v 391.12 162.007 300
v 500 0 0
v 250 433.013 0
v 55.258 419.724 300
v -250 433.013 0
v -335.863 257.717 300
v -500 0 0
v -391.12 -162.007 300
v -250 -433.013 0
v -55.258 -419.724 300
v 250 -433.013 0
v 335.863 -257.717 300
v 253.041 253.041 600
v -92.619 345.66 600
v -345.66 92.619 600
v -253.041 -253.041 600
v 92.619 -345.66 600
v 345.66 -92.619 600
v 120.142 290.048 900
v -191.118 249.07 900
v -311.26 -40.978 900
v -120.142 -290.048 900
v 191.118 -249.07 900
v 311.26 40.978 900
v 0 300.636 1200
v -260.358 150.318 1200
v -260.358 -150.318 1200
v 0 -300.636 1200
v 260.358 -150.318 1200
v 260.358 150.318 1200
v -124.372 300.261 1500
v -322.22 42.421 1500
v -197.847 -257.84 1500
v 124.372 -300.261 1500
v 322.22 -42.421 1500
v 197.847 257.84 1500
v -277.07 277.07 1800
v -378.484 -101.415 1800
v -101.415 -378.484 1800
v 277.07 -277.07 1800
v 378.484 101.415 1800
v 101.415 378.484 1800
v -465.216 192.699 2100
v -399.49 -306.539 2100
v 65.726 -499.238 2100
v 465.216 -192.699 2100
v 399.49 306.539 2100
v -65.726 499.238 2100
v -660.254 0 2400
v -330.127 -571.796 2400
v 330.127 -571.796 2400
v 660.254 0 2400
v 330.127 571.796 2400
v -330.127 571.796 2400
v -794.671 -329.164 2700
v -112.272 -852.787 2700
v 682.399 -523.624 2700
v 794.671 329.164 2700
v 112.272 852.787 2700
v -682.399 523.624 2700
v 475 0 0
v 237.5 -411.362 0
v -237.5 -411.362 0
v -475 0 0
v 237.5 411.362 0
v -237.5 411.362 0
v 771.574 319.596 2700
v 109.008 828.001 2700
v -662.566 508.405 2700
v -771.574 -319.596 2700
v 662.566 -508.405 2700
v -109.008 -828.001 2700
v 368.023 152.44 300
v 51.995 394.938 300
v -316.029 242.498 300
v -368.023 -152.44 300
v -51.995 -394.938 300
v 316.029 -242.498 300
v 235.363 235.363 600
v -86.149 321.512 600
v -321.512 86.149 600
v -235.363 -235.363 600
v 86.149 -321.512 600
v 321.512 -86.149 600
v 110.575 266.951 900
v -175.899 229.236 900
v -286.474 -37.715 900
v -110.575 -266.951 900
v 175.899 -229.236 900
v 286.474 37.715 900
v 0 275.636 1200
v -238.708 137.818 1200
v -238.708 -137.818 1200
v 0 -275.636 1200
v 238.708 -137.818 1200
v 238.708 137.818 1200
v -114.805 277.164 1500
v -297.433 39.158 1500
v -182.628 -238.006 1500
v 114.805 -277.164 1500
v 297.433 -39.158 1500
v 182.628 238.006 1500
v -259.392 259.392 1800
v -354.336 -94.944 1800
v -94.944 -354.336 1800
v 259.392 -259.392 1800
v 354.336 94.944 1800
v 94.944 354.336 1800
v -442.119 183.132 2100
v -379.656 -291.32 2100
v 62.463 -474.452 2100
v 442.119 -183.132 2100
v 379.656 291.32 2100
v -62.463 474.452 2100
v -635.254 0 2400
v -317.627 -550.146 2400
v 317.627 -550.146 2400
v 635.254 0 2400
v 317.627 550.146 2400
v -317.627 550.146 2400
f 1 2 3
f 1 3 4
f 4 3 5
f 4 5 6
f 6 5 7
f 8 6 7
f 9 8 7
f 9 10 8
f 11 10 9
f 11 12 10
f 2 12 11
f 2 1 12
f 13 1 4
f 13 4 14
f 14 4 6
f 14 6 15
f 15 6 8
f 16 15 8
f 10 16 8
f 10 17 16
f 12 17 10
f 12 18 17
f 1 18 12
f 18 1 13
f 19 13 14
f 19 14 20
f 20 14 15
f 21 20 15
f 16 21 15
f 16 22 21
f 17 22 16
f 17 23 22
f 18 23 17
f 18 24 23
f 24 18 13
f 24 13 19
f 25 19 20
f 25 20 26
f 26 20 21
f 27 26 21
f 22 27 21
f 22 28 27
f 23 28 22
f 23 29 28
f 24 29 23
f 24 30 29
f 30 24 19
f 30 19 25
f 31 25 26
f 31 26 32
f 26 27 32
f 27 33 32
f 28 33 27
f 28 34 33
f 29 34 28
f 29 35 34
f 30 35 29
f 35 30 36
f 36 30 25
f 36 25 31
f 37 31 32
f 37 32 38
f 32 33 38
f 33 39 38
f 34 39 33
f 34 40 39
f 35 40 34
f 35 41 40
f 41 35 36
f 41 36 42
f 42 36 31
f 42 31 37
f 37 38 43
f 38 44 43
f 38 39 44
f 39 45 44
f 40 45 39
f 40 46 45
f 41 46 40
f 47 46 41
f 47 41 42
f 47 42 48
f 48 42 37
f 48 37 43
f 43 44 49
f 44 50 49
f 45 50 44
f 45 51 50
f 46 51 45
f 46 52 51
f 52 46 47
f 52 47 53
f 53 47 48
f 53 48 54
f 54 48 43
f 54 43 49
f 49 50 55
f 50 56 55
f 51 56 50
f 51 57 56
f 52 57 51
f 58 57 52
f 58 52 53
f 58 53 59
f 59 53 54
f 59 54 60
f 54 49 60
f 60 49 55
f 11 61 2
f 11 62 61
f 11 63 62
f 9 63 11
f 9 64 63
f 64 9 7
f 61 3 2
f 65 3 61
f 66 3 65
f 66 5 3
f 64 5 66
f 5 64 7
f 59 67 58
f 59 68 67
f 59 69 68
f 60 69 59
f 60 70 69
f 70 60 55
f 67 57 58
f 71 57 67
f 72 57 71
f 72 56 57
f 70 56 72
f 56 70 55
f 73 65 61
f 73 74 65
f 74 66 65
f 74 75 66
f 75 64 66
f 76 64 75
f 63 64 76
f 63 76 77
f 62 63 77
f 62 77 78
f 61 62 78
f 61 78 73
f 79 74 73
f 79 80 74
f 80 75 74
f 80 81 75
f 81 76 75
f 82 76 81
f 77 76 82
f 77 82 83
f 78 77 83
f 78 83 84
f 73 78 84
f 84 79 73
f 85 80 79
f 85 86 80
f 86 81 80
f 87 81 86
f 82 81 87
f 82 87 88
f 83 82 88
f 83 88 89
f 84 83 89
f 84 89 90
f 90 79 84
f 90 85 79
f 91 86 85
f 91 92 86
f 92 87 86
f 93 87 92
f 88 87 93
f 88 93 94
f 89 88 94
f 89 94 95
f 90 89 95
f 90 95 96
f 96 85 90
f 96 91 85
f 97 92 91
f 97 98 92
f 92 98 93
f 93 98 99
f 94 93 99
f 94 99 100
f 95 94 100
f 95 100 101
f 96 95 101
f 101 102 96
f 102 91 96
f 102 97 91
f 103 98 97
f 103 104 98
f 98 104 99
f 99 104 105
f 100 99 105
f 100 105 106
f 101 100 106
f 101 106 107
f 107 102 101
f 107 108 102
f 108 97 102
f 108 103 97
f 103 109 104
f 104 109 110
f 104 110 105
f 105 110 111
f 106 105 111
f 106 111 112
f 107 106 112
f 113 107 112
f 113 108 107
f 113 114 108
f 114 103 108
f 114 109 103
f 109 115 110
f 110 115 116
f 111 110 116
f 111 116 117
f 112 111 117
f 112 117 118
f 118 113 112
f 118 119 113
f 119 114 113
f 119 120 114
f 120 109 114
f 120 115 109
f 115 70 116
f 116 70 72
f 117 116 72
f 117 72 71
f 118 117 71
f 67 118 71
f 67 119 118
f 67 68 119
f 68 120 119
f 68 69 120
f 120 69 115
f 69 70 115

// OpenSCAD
difference() {
	polyhedron(faces = [[0, 6, 1], [1, 6, 7], [1, 7, 2], [2, 7, 8], [2, 8, 3], [3, 8, 9], [3, 9, 4], [4, 9, 10], [4, 10, 5], [5, 10, 11], [5, 11, 0], [0, 11, 6], [6, 12, 7], [7, 12, 13], [7, 13, 8], [8, 13, 14], [8, 14, 9], [9, 14, 15], [9, 15, 10], [10, 15, 16], [10, 16, 11], [11, 16, 17], [11, 17, 6], [6, 17, 12], [12, 18, 13], [13, 18, 19], [13, 19, 14], [14, 19, 20], [14, 20, 15], [15, 20, 21], [15, 21, 16], [16, 21, 22], [16, 22, 17], [17, 22, 23], [17, 23, 12], [12, 23, 18], [18, 24, 19], [19, 24, 25], [19, 25, 20], [20, 25, 26], [20, 26, 21], [21, 26, 27], [21, 27, 22], [22, 27, 28], [22, 28, 23], [23, 28, 29], [23, 29, 18], [18, 29, 24], [24, 30, 25], [25, 30, 31], [25, 31, 26], [26, 31, 32], [26, 32, 27], [27, 32, 33], [27, 33, 28], [28, 33, 34], [28, 34, 29], [29, 34, 35], [29, 35, 24], [24, 35, 30], [30, 36, 31], [31, 36, 37], [31, 37, 32], [32, 37, 38], [32, 38, 33], [33, 38, 39], [33, 39, 34], [34, 39, 40], [34, 40, 35], [35, 40, 41], [35, 41, 30], [30, 41, 36], [36, 42, 37], [37, 42, 43], [37, 43, 38], [38, 43, 44], [38, 44, 39], [39, 44, 45], [39, 45, 40], [40, 45, 46], [40, 46, 41], [41, 46, 47], [41, 47, 36], [36, 47, 42], [42, 48, 43], [43, 48, 49], [43, 49, 44], [44, 49, 50], [44, 50, 45], [45, 50, 51], [45, 51, 46], [46, 51, 52], [46, 52, 47], [47, 52, 53], [47, 53, 42], [42, 53, 48], [48, 54, 49], [49, 54, 55], [49, 55, 50], [50, 55, 56], [50, 56, 51], [51, 56, 57], [51, 57, 52], [52, 57, 58], [52, 58, 53], [53, 58, 59], [53, 59, 48], [48, 59, 54], [1, 60, 0], [54, 61, 55], [2, 60, 1], [55, 61, 56], [3, 60, 2], [56, 61, 57], [4, 60, 3], [57, 61, 58], [5, 60, 4], [58, 61, 59], [0, 60, 5], [59, 61, 54]], points = [[500.0000000000, 0.0000000000, 0.0000000000], [250.0000000000, 433.0127018922, 0.0000000000], [-250.0000000000, 433.0127018922, 0.0000000000], [-500.0000000000, 0.0000000000, 0.0000000000], [-250.0000000000, -433.0127018922, 0.0000000000], [250.0000000000, -433.0127018922, 0.0000000000], [391.1204748999, 162.0074052253, 300.0000000000], [55.2577089236, 419.7239698162, 300.0000000000], [-335.8627659763, 257.7165645908, 300.0000000000], [-391.1204748999, -162.0074052253, 300.0000000000], [-55.2577089236, -419.7239698162, 300.0000000000], [335.8627659763, -257.7165645908, 300.0000000000], [253.0407686986, 253.0407686986, 600.0000000000], [-92.6193495368, 345.6601182354, 600.0000000000], [-345.6601182354, 92.6193495368, 600.0000000000], [-253.0407686986, -253.0407686986, 600.0000000000], [92.6193495368, -345.6601182354, 600.0000000000], [345.6601182354, -92.6193495368, 600.0000000000], [120.1418377246, 290.0480540431, 900.0000000000], [-191.1180642573, 249.0699105484, 900.0000000000], [-311.2599019819, -40.9781434947, 900.0000000000], [-120.1418377246, -290.0480540431, 900.0000000000], [191.1180642573, -249.0699105484, 900.0000000000], [311.2599019819, 40.9781434947, 900.0000000000], [0.0000000000, 300.6358709262, 1200.0000000000], [-260.3583015110, 150.3179354631, 1200.0000000000], [-260.3583015110, -150.3179354631, 1200.0000000000], [-0.0000000000, -300.6358709262, 1200.0000000000], [260.3583015110, -150.3179354631, 1200.0000000000], [260.3583015110, 150.3179354631, 1200.0000000000], [-124.3721155187, 300.2608480662, 1500.0000000000], [-322.2195799465, 42.4210124715, 1500.0000000000], [-197.8474644278, -257.8398355947, 1500.0000000000], [124.3721155187, -300.2608480662, 1500.0000000000], [322.2195799465, -42.4210124715, 1500.0000000000], [197.8474644278, 257.8398355947, 1500.0000000000], [-277.0698014441, 277.0698014441, 1800.0000000000], [-378.4843873941, -101.4145859500, 1800.0000000000], [-101.4145859500, -378.4843873941, 1800.0000000000], [277.0698014441, -277.0698014441, 1800.0000000000], [378.4843873941, 101.4145859500, 1800.0000000000], [101.4145859500, 378.4843873941, 1800.0000000000], [-465.2156134073, 192.6986165010, 2100.0000000000], [-399.4897038676, -306.5392311973, 2100.0000000000], [65.7259095396, -499.2378476984, 2100.0000000000], [465.2156134073, -192.6986165010, 2100.0000000000], [399.4897038676, 306.5392311973, 2100.0000000000], [-65.7259095396, 499.2378476984, 2100.0000000000], [-660.2536869269, 0.0000000000, 2400.0000000000], [-330.1268434634, -571.7964658210, 2400.0000000000], [330.1268434634, -571.7964658210, 2400.0000000000], [660.2536869269, -0.0000000000, 2400.0000000000], [330.1268434634, 571.7964658210, 2400.0000000000], [-330.1268434634, 571.7964658210, 2400.0000000000], [-794.6710547008, -329.1635284824, 2700.0000000000], [-112.2715496853, -852.7870852643, 2700.0000000000], [682.3995050155, -523.6235567819, 2700.0000000000], [794.6710547008, 329.1635284824, 2700.0000000000], [112.2715496853, 852.7870852643, 2700.0000000000], [-682.3995050155, 523.6235567819, 2700.0000000000], [-0.0000000000, 0.0000000000, 0.0000000000], [0.0000000000, 0.0000000000, 2700.0000000000]]);
	polyhedron(faces = [[0, 6, 1], [1, 6, 7], [1, 7, 2], [2, 7, 8], [2, 8, 3], [3, 8, 9], [3, 9, 4], [4, 9, 10], [4, 10, 5], [5, 10, 11], [5, 11, 0], [0, 11, 6], [6, 12, 7], [7, 12, 13], [7, 13, 8], [8, 13, 14], [8, 14, 9], [9, 14, 15], [9, 15, 10], [10, 15, 16], [10, 16, 11], [11, 16, 17], [11, 17, 6], [6, 17, 12], [12, 18, 13], [13, 18, 19], [13, 19, 14], [14, 19, 20], [14, 20, 15], [15, 20, 21], [15, 21, 16], [16, 21, 22], [16, 22, 17], [17, 22, 23], [17, 23, 12], [12, 23, 18], [18, 24, 19], [19, 24, 25], [19, 25, 20], [20, 25, 26], [20, 26, 21], [21, 26, 27], [21, 27, 22], [22, 27, 28], [22, 28, 23], [23, 28, 29], [23, 29, 18], [18, 29, 24], [24, 30, 25], [25, 30, 31], [25, 31, 26], [26, 31, 32], [26, 32, 27], [27, 32, 33], [27, 33, 28], [28, 33, 34], [28, 34, 29], [29, 34, 35], [29, 35, 24], [24, 35, 30], [30, 36, 31], [31, 36, 37], [31, 37, 32], [32, 37, 38], [32, 38, 33], [33, 38, 39], [33, 39, 34], [34, 39, 40], [34, 40, 35], [35, 40, 41], [35, 41, 30], [30, 41, 36], [36, 42, 37], [37, 42, 43], [37, 43, 38], [38, 43, 44], [38, 44, 39], [39, 44, 45], [39, 45, 40], [40, 45, 46], [40, 46, 41], [41, 46, 47], [41, 47, 36], [36, 47, 42], [42, 48, 43], [43, 48, 49], [43, 49, 44], [44, 49, 50], [44, 50, 45], [45, 50, 51], [45, 51, 46], [46, 51, 52], [46, 52, 47], [47, 52, 53], [47, 53, 42], [42, 53, 48], [48, 54, 49], [49, 54, 55], [49, 55, 50], [50, 55, 56], [50, 56, 51], [51, 56, 57], [51, 57, 52], [52, 57, 58], [52, 58, 53], [53, 58, 59], [53, 59, 48], [48, 59, 54], [1, 60, 0], [54, 61, 55], [2, 60, 1], [55, 61, 56], [3, 60, 2], [56, 61, 57], [4, 60, 3], [57, 61, 58], [5, 60, 4], [58, 61, 59], [0, 60, 5], [59, 61, 54]], points = [[475.0000000000, 0.0000000000, 0.0000000000], [237.5000000000, 411.3620667976, 0.0000000000], [-237.5000000000, 411.3620667976, 0.0000000000], [-475.0000000000, 0.0000000000, 0.0000000000], [-237.5000000000, -411.3620667976, 0.0000000000], [237.5000000000, -411.3620667976, 0.0000000000], [368.0234865871, 152.4403194162, 300.0000000000], [51.9945541181, 394.9378482818, 300.0000000000], [-316.0289324690, 242.4975288656, 300.0000000000], [-368.0234865871, -152.4403194162, 300.0000000000], [-51.9945541181, -394.9378482818, 300.0000000000], [316.0289324690, -242.4975288656, 300.0000000000], [235.3630991689, 235.3630991689, 600.0000000000], [-86.1488734093, 321.5119725782, 600.0000000000], [-321.5119725782, 86.1488734093, 600.0000000000], [-235.3630991689, -235.3630991689, 600.0000000000], [86.1488734093, -321.5119725782, 600.0000000000], [321.5119725782, -86.1488734093, 600.0000000000], [110.5747519155, 266.9510657303, 900.0000000000], [-175.8990285321, 229.2360770411, 900.0000000000], [-286.4737804475, -37.7149886892, 900.0000000000], [-110.5747519155, -266.9510657303, 900.0000000000], [175.8990285321, -229.2360770411, 900.0000000000], [286.4737804475, 37.7149886892, 900.0000000000], [0.0000000000, 275.6358709262, 1200.0000000000], [-238.7076664163, 137.8179354631, 1200.0000000000], [-238.7076664163, -137.8179354631, 1200.0000000000], [-0.0000000000, -275.6358709262, 1200.0000000000], [238.7076664163, -137.8179354631, 1200.0000000000], [238.7076664163, 137.8179354631, 1200.0000000000], [-114.8050297095, 277.1638597534, 1500.0000000000], [-297.4334584121, 39.1578576660, 1500.0000000000], [-182.6284287026, -238.0060020874, 1500.0000000000], [114.8050297095, -277.1638597534, 1500.0000000000], [297.4334584121, -39.1578576660, 1500.0000000000], [182.6284287026, 238.0060020874, 1500.0000000000], [-259.3921319144, 259.3921319144, 1800.0000000000], [-354.3362417369, -94.9441098225, 1800.0000000000], [-94.9441098225, -354.3362417369, 1800.0000000000], [259.3921319144, -259.3921319144, 1800.0000000000], [354.3362417369, 94.9441098225, 1800.0000000000], [94.9441098225, 354.3362417369, 1800.0000000000], [-442.1186250945, 183.1315306919, 2100.0000000000], [-379.6558703603, -291.3201954721, 2100.0000000000], [62.4627547341, -474.4517261640, 2100.0000000000], [442.1186250945, -183.1315306919, 2100.0000000000], [379.6558703603, 291.3201954721, 2100.0000000000], [-62.4627547341, 474.4517261640, 2100.0000000000], [-635.2536869269, 0.0000000000, 2400.0000000000], [-317.6268434634, -550.1458307264, 2400.0000000000], [317.6268434634, -550.1458307264, 2400.0000000000], [635.2536869269, -0.0000000000, 2400.0000000000], [317.6268434634, 550.1458307264, 2400.0000000000], [-317.6268434634, 550.1458307264, 2400.0000000000], [-771.5740663880, -319.5964426733, 2700.0000000000], [-109.0083948798, -828.0009637299, 2700.0000000000], [662.5656715082, -508.4045210566, 2700.0000000000], [771.5740663880, 319.5964426733, 2700.0000000000], [109.0083948798, 828.0009637299, 2700.0000000000], [-662.5656715082, 508.4045210566, 2700.0000000000], [-0.0000000000, 0.0000000000, 0.0000000000], [0.0000000000, 0.0000000000, 2700.0000000000]]);
}
